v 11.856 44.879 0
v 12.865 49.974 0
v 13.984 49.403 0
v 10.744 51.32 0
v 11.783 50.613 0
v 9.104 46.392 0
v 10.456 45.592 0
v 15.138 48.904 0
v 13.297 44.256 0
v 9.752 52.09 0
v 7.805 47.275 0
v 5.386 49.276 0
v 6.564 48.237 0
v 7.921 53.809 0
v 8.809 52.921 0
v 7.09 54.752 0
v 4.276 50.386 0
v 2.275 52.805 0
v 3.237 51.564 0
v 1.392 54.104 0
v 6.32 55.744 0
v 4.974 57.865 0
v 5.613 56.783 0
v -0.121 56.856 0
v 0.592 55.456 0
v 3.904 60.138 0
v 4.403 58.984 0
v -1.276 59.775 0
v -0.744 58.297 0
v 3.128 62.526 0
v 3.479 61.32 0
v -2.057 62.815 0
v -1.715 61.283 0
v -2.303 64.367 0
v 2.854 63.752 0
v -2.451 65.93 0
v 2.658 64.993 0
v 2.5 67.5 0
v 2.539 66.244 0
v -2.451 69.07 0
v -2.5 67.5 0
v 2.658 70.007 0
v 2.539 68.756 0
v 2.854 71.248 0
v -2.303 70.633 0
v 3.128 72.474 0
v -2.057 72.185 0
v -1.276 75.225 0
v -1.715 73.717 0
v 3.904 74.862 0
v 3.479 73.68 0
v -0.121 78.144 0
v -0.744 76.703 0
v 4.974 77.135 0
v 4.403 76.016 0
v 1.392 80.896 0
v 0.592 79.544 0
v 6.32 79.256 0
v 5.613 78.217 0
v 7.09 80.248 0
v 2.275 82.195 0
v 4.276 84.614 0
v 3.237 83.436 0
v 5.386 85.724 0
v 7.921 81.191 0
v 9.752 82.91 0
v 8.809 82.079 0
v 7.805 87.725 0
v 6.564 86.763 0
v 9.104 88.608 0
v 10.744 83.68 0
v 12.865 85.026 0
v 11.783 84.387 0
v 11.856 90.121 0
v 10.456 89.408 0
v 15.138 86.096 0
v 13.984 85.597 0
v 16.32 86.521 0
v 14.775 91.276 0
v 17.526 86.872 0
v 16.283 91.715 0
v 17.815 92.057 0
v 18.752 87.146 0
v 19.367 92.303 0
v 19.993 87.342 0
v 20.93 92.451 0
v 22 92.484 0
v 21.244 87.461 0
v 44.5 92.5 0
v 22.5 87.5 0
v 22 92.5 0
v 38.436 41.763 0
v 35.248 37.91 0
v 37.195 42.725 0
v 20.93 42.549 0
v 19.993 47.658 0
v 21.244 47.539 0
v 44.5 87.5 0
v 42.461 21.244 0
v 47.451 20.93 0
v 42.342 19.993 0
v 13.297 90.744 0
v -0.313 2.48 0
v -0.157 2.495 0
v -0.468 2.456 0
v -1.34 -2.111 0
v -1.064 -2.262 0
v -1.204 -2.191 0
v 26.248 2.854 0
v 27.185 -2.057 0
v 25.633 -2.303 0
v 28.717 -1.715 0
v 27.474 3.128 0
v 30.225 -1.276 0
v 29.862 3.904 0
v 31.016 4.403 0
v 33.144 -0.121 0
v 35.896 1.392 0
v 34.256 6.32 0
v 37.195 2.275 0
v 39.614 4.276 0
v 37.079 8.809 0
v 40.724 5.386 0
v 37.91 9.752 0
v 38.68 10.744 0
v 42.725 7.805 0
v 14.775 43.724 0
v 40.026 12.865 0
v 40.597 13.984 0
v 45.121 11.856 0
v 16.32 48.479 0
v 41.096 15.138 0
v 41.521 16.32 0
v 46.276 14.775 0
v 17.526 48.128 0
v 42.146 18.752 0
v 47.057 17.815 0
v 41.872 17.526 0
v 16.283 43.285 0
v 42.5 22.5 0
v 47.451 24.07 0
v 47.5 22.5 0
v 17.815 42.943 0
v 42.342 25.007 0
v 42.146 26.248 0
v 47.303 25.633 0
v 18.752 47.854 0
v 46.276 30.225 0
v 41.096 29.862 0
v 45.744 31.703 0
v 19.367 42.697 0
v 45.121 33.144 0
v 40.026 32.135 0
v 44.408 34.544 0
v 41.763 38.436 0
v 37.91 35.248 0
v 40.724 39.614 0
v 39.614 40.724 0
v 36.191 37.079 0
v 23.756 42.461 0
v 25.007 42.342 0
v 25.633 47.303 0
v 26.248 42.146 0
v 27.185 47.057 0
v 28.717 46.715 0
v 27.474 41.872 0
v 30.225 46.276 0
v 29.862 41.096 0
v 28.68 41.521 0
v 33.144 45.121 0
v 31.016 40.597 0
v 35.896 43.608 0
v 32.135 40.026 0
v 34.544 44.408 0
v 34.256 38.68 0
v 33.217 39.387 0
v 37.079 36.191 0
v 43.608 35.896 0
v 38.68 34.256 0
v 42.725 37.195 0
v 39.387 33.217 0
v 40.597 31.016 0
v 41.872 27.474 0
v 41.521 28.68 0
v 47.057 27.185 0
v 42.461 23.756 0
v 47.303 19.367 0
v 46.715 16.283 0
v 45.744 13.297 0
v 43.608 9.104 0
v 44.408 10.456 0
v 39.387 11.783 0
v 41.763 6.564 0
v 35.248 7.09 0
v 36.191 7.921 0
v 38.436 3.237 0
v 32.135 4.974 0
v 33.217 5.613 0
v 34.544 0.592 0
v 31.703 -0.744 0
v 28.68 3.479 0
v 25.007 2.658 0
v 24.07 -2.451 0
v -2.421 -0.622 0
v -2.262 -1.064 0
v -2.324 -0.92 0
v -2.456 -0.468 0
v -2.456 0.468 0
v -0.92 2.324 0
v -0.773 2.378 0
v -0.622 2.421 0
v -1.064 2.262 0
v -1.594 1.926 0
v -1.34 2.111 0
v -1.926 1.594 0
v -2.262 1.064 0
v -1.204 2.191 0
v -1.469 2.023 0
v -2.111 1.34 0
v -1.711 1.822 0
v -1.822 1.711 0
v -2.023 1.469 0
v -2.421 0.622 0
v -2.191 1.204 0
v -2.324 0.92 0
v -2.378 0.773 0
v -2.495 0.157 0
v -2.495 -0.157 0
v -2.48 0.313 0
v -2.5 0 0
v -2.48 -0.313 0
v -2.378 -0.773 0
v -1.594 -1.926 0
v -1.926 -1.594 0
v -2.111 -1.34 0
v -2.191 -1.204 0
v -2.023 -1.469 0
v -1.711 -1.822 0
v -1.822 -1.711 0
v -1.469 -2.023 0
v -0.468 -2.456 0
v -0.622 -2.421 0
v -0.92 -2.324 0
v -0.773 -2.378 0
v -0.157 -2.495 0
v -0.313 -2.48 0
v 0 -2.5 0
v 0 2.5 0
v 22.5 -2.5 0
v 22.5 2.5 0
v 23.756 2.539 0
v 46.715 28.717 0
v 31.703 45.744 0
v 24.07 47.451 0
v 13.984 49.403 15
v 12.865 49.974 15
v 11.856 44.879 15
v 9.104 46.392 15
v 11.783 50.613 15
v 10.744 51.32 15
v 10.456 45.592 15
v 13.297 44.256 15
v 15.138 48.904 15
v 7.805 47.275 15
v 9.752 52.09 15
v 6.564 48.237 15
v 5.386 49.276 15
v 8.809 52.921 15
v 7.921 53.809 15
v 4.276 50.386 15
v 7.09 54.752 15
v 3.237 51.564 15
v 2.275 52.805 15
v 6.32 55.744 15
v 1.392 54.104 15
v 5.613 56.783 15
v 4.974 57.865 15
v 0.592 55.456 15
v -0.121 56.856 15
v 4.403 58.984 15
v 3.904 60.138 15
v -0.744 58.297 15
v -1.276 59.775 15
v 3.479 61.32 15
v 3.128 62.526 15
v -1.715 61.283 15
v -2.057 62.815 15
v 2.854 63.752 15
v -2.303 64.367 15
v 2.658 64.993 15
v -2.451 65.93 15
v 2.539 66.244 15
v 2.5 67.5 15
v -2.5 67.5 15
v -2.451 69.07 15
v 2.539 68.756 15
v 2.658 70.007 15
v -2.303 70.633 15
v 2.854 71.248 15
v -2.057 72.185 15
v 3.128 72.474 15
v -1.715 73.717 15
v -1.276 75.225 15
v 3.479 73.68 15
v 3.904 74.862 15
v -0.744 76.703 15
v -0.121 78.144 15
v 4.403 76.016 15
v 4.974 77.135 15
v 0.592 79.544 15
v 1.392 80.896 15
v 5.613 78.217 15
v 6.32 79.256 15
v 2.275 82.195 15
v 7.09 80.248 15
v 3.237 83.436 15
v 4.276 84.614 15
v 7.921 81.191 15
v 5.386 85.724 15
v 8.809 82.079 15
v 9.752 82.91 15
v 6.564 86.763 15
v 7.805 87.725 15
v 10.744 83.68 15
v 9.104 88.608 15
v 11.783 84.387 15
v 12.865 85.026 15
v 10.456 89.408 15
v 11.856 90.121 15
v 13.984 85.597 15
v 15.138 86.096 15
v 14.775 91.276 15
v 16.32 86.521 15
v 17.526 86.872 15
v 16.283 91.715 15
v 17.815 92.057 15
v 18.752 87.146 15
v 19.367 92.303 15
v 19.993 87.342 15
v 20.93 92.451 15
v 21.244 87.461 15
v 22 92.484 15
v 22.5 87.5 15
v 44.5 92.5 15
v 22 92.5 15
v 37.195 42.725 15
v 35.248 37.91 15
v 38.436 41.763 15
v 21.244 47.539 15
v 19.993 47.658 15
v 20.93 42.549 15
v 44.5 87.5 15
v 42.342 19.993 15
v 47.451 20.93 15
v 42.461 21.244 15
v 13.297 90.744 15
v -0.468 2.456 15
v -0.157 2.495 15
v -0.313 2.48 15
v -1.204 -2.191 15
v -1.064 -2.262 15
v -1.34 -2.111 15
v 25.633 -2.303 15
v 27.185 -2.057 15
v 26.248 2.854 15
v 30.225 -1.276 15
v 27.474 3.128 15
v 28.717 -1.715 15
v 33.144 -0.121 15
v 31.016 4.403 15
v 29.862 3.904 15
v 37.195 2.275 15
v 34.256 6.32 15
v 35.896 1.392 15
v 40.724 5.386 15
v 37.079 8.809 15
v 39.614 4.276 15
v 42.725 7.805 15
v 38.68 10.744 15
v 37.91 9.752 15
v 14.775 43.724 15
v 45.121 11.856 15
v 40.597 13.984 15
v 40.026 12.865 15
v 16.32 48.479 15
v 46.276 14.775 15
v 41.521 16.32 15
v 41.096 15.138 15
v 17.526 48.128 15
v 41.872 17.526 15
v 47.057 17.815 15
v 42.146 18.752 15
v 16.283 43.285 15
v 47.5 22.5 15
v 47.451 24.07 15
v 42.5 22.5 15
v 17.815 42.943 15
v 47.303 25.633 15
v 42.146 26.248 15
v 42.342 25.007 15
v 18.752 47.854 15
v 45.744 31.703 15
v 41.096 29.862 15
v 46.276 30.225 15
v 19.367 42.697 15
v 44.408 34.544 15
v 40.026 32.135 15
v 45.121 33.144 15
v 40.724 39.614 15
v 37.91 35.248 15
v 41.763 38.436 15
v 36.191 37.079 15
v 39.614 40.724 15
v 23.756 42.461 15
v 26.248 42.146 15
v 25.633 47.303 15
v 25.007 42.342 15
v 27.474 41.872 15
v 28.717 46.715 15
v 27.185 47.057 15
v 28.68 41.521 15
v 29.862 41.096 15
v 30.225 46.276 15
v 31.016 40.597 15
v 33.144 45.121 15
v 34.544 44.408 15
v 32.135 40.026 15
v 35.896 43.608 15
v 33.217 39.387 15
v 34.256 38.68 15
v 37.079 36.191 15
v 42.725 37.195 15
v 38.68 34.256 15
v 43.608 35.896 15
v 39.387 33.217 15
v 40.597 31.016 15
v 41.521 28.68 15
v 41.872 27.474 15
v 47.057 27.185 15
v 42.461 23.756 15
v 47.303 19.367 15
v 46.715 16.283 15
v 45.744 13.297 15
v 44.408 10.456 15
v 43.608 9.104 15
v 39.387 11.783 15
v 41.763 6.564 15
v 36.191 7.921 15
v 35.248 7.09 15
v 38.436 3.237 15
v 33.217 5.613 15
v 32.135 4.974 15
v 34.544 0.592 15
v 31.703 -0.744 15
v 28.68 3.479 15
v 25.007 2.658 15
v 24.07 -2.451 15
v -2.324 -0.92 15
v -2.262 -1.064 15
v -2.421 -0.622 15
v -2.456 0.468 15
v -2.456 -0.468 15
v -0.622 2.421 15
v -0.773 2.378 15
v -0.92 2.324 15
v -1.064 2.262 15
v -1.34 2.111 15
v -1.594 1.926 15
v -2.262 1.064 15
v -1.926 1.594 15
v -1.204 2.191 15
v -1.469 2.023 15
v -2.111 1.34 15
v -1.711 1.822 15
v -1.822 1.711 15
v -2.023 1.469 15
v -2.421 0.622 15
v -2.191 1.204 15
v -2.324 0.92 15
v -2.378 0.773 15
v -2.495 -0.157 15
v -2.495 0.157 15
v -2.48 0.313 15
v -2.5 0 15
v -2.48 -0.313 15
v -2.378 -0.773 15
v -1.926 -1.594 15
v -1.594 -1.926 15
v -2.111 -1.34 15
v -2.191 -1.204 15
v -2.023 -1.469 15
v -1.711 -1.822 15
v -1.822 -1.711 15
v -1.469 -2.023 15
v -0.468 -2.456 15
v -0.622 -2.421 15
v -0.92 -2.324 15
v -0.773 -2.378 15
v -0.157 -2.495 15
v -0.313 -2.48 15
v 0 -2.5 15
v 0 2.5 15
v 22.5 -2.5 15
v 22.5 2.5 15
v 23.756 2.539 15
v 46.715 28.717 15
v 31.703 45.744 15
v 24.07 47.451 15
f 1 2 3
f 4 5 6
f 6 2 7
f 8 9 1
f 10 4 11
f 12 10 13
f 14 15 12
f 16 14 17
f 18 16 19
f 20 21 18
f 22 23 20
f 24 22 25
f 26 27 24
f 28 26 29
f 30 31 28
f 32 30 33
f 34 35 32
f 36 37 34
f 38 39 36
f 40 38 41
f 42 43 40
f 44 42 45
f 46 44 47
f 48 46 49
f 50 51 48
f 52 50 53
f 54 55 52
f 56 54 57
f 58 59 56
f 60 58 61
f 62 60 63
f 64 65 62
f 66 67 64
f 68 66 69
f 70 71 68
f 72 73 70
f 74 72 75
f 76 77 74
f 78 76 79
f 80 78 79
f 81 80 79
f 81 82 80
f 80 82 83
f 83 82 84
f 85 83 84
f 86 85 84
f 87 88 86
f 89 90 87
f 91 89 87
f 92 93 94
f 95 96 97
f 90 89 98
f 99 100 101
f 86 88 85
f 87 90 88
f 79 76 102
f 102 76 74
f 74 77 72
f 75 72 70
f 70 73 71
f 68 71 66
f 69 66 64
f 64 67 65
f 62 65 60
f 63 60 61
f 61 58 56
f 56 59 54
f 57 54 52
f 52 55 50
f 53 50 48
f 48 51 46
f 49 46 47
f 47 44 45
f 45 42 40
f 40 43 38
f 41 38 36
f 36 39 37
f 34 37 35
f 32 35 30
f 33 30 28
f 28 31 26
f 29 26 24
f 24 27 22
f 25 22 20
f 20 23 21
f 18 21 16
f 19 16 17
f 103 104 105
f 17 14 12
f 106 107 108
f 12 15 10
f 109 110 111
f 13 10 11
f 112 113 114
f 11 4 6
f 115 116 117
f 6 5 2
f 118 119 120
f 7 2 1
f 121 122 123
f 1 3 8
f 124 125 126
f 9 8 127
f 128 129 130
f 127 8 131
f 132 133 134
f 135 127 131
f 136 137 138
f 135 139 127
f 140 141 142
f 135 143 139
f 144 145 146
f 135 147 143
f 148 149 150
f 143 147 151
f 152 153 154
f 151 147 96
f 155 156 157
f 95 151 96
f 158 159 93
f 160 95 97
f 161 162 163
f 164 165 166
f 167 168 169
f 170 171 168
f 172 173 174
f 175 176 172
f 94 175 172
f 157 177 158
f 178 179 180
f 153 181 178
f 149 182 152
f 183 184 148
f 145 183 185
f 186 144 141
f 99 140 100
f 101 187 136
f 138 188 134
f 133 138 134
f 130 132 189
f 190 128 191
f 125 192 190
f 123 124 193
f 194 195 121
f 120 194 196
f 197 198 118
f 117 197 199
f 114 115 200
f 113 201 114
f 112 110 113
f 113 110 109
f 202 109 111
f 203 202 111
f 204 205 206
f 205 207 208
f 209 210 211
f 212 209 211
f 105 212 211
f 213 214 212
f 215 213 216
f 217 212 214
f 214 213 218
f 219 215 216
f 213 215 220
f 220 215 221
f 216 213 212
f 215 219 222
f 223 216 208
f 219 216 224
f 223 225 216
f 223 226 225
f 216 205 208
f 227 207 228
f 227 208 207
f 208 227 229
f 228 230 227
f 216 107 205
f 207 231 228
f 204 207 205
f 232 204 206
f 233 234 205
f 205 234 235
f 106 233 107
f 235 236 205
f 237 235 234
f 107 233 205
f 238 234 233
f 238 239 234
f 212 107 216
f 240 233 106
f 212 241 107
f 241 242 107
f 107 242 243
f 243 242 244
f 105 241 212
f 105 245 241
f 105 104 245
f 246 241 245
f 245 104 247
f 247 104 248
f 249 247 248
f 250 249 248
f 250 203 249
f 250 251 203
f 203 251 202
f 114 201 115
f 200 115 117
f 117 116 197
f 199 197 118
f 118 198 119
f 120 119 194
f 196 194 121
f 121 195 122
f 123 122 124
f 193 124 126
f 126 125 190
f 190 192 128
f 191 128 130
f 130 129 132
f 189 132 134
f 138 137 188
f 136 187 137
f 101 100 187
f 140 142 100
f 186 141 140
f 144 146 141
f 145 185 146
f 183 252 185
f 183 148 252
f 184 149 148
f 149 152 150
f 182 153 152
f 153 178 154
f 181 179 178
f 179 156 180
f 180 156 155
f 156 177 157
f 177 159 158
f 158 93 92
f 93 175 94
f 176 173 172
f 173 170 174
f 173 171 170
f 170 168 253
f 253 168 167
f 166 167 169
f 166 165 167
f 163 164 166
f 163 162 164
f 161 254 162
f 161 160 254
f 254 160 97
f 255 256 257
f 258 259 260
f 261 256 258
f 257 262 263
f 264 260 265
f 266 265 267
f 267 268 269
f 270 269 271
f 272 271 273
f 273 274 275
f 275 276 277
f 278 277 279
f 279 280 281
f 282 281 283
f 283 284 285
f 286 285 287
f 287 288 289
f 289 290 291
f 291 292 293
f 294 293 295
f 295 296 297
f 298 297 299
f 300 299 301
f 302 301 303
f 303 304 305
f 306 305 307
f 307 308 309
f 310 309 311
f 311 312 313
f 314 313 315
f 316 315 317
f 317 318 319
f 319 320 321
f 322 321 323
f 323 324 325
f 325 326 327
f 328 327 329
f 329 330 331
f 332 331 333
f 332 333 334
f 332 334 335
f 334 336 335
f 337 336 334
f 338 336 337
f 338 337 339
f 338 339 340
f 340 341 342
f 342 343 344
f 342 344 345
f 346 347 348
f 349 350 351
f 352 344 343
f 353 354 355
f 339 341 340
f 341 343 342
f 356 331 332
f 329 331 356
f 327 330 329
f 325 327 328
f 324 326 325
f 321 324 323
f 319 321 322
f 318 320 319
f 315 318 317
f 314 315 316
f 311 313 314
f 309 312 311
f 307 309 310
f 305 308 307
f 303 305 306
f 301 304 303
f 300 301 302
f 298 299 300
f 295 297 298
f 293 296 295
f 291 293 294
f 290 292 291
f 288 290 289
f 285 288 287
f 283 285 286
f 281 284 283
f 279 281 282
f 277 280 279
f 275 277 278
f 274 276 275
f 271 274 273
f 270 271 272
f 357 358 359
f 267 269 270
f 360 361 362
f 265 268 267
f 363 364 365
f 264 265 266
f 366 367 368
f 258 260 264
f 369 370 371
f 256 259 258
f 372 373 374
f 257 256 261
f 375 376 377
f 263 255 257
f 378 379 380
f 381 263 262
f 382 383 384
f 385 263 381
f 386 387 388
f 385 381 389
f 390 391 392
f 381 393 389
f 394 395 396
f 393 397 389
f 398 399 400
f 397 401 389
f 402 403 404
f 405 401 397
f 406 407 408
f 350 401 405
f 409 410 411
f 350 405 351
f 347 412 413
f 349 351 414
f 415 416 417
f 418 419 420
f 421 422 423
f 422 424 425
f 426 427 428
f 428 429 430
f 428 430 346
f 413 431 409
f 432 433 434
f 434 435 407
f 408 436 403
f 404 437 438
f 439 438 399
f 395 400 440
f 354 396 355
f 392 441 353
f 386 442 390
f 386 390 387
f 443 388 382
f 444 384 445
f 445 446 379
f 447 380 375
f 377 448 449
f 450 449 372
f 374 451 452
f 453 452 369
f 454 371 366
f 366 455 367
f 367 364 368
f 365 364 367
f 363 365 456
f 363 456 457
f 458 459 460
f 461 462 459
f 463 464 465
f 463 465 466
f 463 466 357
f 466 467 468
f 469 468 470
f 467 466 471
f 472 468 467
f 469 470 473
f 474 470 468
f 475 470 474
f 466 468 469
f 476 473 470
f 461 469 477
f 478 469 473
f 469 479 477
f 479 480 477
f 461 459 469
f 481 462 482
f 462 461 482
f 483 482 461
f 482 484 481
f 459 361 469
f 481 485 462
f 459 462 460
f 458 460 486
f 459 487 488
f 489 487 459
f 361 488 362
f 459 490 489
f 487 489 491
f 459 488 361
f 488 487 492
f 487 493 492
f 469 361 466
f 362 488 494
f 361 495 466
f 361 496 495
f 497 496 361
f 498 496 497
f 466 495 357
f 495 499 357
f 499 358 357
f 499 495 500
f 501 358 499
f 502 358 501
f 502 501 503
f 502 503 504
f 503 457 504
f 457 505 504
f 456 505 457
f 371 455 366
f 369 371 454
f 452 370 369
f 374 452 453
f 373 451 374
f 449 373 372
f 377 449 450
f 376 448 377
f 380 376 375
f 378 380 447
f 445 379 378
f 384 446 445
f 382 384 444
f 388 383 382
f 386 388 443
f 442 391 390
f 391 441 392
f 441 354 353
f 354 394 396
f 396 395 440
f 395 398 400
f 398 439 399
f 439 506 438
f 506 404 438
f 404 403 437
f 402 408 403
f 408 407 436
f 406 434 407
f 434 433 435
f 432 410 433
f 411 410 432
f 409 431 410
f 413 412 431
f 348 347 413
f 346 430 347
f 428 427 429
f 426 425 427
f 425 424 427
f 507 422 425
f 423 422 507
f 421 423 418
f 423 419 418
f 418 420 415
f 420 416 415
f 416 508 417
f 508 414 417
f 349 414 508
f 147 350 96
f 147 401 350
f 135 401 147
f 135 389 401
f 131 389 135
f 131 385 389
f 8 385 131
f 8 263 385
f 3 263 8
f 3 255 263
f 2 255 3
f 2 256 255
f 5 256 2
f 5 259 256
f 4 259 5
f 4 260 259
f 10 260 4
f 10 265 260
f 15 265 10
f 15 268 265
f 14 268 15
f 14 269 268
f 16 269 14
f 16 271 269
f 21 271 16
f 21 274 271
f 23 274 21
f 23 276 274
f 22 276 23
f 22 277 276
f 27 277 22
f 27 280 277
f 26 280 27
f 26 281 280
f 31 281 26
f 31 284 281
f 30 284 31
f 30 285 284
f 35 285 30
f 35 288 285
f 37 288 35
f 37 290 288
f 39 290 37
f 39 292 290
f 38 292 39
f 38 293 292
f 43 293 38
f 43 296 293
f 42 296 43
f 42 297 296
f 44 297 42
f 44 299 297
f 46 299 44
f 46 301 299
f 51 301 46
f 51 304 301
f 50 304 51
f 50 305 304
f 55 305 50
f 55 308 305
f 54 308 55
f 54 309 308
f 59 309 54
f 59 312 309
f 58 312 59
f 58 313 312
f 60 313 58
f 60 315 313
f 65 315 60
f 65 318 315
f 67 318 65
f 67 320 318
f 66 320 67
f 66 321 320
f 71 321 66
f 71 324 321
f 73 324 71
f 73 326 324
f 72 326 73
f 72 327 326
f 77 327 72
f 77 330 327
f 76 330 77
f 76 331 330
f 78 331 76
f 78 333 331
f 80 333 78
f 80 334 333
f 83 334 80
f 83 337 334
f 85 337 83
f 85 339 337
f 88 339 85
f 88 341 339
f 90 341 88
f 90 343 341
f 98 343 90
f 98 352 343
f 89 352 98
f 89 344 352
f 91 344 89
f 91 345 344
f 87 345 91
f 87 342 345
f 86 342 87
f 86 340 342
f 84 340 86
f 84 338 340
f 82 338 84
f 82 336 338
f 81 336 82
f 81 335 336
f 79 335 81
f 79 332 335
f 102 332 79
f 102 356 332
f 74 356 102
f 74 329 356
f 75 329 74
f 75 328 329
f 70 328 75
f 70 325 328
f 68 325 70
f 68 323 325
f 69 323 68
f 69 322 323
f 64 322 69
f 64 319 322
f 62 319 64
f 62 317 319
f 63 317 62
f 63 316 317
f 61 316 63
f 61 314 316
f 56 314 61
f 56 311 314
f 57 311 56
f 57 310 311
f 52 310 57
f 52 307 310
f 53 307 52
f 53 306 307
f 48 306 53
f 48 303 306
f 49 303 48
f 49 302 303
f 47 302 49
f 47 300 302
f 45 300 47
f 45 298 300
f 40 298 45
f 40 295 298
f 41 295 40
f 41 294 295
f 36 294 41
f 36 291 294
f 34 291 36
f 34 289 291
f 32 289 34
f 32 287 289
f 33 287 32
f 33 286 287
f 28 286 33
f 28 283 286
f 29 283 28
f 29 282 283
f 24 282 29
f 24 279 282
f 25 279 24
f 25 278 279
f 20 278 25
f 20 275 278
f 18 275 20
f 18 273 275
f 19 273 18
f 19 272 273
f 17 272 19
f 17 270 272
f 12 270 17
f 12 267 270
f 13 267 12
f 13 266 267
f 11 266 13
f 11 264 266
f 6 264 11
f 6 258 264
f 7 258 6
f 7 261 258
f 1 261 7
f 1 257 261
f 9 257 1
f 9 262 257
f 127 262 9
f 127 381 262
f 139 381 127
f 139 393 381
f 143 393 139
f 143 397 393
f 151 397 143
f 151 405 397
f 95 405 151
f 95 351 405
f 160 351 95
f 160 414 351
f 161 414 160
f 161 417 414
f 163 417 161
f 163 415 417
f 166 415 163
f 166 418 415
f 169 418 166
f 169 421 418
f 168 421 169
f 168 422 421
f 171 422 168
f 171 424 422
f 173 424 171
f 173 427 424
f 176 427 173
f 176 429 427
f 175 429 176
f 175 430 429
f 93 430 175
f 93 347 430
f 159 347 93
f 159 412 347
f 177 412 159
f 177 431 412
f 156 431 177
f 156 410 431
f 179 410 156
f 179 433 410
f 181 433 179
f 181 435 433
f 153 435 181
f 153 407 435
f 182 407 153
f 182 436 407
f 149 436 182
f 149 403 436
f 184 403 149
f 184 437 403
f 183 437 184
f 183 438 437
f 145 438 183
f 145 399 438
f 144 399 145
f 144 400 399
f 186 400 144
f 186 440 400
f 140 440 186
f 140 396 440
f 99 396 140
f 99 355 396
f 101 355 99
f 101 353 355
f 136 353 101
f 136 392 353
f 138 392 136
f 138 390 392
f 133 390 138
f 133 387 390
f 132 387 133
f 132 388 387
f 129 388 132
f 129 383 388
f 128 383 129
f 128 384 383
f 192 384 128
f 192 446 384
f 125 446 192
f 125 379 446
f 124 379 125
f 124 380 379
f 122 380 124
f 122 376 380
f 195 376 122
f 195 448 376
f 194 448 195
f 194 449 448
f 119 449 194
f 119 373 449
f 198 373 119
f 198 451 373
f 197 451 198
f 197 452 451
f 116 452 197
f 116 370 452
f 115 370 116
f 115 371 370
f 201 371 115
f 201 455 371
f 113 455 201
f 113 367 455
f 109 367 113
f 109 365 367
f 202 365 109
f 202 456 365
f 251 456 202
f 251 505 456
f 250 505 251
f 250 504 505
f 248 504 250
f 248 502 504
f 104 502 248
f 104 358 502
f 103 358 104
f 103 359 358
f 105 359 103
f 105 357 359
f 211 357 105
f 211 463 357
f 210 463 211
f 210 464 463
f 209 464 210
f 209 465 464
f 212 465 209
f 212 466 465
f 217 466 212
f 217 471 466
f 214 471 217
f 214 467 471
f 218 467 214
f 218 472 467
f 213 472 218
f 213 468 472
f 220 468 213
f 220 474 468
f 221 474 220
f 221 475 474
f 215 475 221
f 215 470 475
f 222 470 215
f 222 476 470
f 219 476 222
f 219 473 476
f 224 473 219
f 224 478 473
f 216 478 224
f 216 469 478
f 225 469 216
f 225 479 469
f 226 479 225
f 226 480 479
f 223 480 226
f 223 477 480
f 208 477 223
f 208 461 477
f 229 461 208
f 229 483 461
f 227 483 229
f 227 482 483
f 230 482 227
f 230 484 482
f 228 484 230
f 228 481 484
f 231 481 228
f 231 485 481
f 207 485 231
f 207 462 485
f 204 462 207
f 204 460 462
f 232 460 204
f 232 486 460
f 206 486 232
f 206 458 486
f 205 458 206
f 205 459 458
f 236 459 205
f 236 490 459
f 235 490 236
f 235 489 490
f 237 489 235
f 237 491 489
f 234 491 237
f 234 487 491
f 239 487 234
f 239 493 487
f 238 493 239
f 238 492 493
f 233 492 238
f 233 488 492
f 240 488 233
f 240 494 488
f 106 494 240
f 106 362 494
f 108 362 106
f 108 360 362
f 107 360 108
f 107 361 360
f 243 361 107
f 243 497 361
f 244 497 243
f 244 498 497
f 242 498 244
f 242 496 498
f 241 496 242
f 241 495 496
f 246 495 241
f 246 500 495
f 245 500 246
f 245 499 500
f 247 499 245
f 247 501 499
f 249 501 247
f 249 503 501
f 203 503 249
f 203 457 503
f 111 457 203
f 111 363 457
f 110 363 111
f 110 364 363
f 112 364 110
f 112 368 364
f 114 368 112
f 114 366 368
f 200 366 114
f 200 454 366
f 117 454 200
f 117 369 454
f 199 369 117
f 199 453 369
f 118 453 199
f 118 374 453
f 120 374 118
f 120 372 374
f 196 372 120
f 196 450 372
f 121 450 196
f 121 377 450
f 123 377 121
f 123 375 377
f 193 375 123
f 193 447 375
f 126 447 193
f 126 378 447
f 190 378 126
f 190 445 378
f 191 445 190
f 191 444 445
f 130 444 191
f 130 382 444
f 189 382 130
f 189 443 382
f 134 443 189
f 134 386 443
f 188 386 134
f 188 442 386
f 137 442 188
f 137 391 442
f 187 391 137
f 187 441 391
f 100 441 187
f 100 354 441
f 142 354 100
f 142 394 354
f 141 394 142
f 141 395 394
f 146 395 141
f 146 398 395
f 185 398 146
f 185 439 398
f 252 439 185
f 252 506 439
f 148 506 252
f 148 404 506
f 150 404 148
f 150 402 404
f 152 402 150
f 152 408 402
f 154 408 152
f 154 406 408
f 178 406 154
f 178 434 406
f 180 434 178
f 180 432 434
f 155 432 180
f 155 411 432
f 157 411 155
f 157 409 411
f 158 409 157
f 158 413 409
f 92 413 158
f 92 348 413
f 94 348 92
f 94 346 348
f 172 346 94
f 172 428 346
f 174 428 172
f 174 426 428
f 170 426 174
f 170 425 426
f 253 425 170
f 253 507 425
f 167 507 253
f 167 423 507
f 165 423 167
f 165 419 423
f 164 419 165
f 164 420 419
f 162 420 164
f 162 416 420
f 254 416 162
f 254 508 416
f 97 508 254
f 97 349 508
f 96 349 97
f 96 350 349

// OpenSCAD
// exercise-17
// author: Xiaoqi Zhao
// date: 2022-12-07

$fn=100;

color("green")
linear_extrude(15){
    circle(2.5);
    translate([0,-2.5]) square([22.5,5]);
    translate([22.5,25-2.5]) {
        difference(){
            difference() {
                    circle(25);
                    circle(20);
            }
            #translate([-25,-25]) square([25,50]);
        }
    }
    translate([22.5,(25-2.5)*3]) {
        difference(){
            difference() {
                    circle(25);
                    circle(20);
            }
            #translate([0,-25]) square([25,50]);
        }
    }
    translate([22.,90-2.5]) square([22.5,5]);
}
